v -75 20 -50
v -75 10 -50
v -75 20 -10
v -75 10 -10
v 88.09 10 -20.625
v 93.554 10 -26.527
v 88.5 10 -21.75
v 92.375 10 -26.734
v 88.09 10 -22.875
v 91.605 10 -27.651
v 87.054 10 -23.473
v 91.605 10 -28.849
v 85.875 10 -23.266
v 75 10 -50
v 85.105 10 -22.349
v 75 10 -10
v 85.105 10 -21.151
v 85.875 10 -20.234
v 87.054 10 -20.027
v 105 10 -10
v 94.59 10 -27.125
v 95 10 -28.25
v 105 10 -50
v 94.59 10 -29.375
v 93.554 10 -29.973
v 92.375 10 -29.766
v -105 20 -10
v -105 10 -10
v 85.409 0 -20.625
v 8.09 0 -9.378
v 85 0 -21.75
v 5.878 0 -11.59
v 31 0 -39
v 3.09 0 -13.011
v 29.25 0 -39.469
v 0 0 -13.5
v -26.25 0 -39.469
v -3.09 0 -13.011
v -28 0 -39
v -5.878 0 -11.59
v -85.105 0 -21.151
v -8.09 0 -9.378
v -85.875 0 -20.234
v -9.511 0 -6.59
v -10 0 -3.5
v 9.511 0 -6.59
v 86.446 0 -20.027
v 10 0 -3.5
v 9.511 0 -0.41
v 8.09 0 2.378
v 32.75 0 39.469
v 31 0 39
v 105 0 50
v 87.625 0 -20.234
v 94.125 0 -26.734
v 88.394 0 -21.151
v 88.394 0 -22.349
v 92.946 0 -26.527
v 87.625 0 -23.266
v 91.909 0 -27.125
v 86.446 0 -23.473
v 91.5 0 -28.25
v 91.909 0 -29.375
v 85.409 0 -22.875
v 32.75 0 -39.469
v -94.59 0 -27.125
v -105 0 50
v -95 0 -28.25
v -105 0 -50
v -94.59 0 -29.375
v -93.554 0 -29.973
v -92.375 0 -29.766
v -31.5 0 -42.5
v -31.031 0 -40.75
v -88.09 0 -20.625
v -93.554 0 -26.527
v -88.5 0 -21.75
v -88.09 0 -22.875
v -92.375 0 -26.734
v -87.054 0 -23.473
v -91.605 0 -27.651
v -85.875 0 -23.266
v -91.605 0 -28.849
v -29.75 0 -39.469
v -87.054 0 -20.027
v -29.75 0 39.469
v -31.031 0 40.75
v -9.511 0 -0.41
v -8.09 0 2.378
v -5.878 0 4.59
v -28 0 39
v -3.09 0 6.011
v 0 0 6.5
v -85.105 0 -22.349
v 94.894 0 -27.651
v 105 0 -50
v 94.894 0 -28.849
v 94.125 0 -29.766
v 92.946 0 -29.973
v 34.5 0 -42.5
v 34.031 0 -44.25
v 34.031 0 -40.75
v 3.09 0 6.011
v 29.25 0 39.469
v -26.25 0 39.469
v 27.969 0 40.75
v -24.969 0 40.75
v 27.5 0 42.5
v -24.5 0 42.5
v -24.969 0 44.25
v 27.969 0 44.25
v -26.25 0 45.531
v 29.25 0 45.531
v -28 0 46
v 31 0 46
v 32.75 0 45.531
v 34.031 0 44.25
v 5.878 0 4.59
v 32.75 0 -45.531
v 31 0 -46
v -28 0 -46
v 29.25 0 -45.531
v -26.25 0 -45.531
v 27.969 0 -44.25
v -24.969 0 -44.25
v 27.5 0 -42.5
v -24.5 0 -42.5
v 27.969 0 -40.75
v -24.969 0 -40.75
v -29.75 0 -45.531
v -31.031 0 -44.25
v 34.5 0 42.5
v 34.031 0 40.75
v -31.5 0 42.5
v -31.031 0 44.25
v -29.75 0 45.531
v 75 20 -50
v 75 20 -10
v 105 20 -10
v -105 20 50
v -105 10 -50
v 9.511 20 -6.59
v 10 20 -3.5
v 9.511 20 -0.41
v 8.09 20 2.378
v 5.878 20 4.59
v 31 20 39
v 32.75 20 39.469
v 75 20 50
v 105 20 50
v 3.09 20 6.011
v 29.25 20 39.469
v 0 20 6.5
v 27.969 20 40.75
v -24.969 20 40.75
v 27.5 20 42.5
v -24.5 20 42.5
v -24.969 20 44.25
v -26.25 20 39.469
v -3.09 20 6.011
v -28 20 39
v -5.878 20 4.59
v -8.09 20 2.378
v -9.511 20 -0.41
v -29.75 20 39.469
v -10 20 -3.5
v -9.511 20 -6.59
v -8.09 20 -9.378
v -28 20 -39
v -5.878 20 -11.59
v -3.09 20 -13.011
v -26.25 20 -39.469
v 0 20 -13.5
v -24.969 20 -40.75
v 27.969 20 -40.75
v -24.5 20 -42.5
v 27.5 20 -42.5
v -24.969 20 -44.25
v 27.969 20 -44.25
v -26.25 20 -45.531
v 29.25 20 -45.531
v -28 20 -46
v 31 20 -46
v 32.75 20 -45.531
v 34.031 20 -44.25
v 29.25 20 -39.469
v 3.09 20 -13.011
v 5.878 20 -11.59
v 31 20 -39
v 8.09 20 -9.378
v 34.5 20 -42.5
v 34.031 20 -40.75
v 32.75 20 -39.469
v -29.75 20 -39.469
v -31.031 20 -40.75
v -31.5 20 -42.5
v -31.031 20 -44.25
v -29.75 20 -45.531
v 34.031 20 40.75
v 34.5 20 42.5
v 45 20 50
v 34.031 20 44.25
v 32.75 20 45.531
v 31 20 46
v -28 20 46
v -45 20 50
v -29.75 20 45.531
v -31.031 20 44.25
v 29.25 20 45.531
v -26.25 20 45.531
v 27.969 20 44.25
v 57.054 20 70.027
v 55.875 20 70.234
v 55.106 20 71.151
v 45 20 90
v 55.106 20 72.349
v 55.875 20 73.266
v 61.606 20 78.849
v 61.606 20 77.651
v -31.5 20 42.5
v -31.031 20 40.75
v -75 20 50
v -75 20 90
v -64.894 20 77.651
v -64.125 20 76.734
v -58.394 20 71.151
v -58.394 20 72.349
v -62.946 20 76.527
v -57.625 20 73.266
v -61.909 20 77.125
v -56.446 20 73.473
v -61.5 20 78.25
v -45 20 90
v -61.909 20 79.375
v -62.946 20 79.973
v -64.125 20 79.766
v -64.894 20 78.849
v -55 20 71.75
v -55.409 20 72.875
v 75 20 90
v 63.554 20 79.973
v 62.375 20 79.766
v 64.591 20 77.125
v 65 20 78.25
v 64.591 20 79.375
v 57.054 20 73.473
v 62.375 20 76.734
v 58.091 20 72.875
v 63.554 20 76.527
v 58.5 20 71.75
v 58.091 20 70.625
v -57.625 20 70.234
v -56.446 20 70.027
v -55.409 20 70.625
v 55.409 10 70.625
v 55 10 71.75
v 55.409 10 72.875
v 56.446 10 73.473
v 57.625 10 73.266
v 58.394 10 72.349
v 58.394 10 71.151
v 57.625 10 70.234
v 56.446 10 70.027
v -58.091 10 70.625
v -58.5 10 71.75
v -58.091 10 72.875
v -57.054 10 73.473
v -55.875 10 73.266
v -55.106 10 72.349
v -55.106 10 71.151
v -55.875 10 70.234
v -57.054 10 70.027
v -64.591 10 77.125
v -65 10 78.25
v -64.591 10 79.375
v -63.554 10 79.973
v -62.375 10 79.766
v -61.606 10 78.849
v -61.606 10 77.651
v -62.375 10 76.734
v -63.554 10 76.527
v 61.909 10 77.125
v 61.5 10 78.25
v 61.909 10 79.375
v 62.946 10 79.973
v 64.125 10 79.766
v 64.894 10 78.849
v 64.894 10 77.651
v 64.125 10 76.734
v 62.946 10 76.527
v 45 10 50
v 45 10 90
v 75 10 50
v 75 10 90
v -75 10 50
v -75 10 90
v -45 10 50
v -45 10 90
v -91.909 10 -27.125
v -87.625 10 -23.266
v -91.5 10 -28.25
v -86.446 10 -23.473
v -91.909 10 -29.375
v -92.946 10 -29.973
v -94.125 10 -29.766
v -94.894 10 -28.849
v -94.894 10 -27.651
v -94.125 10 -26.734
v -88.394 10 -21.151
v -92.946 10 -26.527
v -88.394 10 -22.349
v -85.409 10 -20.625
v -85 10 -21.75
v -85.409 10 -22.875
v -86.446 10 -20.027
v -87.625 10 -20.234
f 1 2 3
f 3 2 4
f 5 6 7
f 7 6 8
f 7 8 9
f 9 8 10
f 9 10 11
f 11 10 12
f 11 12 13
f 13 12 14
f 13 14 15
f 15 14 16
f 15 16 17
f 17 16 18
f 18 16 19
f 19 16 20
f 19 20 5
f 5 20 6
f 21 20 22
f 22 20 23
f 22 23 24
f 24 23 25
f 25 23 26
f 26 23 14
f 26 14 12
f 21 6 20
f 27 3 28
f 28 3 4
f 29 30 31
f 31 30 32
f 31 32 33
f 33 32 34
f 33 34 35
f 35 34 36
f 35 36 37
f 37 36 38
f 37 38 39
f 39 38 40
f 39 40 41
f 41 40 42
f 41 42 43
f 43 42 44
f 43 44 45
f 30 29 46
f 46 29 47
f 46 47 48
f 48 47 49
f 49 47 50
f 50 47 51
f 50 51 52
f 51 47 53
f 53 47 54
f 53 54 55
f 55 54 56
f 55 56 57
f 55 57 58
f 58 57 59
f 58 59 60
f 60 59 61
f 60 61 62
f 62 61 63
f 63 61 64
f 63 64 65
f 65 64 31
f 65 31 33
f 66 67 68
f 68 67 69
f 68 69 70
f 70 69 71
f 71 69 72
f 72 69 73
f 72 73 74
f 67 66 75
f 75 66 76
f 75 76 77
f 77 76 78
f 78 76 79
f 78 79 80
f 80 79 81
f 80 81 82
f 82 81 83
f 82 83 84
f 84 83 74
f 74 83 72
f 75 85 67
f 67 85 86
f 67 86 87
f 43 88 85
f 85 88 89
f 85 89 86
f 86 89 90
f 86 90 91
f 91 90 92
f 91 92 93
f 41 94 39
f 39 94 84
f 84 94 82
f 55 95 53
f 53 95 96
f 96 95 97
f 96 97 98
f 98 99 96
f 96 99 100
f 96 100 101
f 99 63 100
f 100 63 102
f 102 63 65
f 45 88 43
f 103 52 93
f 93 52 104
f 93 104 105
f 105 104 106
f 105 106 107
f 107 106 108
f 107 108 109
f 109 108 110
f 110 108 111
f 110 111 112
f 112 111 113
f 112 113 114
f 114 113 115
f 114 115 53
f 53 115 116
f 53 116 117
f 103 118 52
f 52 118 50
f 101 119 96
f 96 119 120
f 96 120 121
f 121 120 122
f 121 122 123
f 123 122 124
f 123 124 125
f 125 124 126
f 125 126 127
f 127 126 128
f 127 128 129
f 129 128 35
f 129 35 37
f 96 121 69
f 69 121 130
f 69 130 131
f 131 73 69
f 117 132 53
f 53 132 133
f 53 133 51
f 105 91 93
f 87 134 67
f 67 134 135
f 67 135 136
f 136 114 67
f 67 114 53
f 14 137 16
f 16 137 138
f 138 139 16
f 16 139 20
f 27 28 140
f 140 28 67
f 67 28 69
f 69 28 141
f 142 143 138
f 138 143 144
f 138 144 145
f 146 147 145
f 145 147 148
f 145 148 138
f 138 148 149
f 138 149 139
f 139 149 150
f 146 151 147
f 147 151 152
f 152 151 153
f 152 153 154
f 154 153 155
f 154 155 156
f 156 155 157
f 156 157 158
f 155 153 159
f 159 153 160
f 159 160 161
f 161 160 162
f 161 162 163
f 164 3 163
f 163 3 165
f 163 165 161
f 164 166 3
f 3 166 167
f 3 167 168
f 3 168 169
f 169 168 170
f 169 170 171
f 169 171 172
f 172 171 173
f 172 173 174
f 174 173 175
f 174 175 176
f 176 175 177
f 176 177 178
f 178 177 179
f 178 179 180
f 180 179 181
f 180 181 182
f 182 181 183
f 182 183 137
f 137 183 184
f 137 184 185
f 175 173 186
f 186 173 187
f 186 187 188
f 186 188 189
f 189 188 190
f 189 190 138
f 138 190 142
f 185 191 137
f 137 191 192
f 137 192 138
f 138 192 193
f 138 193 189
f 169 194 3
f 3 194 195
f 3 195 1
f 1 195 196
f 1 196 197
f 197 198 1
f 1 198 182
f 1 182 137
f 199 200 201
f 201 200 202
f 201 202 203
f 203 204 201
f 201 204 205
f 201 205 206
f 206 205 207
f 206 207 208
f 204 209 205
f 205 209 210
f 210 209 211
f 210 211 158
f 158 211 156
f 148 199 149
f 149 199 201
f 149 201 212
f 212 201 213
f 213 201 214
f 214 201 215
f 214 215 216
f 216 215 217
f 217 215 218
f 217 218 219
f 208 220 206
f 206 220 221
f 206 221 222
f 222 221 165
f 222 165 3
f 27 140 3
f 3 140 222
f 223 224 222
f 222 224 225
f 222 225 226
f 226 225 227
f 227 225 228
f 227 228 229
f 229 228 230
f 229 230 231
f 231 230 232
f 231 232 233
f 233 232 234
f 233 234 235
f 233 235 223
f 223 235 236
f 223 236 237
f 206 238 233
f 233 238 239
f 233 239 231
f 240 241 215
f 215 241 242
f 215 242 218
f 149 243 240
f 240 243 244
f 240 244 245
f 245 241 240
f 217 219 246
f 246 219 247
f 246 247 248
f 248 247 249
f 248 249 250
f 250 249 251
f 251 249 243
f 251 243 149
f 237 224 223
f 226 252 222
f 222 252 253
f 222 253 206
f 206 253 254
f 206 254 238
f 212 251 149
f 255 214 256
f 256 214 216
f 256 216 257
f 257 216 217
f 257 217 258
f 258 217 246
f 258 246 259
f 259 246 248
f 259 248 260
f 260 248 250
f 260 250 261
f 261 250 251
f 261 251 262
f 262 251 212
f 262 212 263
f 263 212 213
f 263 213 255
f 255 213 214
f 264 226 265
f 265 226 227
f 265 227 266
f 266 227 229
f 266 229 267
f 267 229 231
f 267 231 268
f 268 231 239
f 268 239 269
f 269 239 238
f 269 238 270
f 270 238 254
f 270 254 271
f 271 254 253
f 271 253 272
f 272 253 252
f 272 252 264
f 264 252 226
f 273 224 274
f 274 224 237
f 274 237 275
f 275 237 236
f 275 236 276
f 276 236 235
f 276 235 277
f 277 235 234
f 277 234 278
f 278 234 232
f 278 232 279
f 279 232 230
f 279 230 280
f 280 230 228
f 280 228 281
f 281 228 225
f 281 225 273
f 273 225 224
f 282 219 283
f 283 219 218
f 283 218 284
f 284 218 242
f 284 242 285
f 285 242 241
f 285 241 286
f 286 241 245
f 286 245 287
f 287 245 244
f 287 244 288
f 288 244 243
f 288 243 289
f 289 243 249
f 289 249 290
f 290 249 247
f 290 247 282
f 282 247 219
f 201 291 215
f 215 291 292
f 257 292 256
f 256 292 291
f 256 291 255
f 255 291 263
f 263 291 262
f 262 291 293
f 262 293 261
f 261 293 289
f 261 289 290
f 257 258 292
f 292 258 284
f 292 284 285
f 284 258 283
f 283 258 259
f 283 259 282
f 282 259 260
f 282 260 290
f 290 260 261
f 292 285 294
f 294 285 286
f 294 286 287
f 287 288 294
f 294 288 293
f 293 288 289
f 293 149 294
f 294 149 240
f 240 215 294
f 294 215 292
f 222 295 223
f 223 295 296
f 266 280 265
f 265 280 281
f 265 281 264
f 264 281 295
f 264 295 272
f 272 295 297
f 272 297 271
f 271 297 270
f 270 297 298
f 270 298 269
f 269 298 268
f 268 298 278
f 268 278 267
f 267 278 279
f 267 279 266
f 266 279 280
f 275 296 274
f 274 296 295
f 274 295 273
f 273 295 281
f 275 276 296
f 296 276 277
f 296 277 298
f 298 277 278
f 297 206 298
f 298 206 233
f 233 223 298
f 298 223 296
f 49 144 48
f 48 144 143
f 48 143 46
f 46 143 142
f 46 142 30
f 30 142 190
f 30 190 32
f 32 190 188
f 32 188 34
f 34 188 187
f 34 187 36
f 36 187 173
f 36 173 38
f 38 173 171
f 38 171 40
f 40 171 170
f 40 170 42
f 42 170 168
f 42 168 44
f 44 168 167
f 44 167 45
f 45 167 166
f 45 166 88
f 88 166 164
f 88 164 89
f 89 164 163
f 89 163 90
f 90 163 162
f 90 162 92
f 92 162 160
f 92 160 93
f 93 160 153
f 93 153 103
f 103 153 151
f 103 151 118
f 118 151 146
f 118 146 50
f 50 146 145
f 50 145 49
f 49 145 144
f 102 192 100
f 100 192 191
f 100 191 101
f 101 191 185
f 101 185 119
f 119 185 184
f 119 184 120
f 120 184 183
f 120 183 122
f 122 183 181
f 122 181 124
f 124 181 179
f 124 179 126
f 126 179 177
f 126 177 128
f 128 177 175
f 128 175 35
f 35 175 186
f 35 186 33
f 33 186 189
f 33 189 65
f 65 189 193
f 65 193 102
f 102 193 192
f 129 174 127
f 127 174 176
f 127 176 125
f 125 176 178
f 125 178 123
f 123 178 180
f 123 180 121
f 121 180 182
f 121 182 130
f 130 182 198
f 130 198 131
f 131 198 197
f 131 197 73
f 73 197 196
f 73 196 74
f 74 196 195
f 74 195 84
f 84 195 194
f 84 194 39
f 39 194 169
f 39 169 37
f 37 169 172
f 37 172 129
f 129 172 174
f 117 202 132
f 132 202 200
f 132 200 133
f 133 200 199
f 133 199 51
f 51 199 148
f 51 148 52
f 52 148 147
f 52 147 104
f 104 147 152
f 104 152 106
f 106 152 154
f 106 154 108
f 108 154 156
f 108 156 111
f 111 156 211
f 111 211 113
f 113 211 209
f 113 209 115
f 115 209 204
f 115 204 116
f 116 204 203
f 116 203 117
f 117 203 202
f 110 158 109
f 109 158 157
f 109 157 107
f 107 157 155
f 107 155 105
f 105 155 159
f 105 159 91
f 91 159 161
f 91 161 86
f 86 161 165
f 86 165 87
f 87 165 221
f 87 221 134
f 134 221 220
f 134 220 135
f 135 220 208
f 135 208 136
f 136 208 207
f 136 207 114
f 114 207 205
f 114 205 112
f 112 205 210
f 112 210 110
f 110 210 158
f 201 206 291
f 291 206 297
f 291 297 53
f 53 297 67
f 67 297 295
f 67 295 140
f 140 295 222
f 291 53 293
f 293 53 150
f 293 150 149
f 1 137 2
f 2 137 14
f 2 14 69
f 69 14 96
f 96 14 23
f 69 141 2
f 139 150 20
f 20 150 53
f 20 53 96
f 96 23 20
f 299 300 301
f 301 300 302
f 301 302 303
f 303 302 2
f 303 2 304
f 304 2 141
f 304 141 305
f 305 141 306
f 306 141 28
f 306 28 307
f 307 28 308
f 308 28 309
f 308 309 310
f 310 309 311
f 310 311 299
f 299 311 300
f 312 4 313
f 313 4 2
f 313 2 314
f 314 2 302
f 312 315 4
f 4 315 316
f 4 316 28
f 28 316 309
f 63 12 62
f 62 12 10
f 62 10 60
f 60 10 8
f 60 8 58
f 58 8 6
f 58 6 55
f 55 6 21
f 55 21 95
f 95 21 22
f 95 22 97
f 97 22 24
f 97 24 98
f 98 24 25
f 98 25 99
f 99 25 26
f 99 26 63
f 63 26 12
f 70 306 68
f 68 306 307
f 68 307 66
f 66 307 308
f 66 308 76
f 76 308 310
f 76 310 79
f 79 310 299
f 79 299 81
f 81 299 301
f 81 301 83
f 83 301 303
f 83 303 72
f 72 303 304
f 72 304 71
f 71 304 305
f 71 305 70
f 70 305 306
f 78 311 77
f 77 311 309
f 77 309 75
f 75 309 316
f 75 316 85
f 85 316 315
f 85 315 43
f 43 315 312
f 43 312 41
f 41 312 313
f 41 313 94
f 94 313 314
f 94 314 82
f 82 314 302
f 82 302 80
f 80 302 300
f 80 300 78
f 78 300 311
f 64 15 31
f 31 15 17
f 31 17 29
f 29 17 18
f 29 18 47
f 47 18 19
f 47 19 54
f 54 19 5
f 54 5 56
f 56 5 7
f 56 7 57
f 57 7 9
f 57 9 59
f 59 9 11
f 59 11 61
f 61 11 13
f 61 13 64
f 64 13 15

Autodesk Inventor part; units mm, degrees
ref_plane "YZ Plane" through (0, 0, 0) normal (1, 0, 0) x (0, 1, 0)
ref_plane "XZ Plane" through (0, 0, 0) normal (0, 1, 0) x (-1, 0, 0)
ref_plane "XY Plane" through (0, 0, 0) normal (0, 0, 1) x (1, 0, 0)
sketch "Boceto1" plane through (0, 0, 0) normal (0, 1, 0) x (-1, 0, 0)
  line L0 (105, 50) -> (-105, 50)
  line L1 (-105, 50) -> (-105, -50)
  line L2 (-105, -50) -> (105, -50)
  line L3 (105, -50) -> (105, 50)
  line L4 (105, 50) -> (-105, -50) construction
  line L5 (-105, 50) -> (105, -50) construction
  point P0 (0, 0)
  dimension "d0" = 210
  dimension "d1" = 100
extrude "Extrusión1" add sketch "Boceto1" along normal blind 20
sketch "Boceto2" plane through (0, 20, 0) normal (0, 1, 0) x (1, 0, 0)
  circle A0 centre (0, 3.5) radius 10
  circle A1 centre (31, -42.5) radius 3.5
  line L0 (0, 3.5) -> (21.5607, 3.5)
  circle A2 centre (31, 42.5) radius 3.5
  circle A3 centre (-28, 42.5) radius 3.5
  circle A4 centre (-28, -42.5) radius 3.5
  line L1 (105, 50) -> (-105, 50) projected
  point P0 (0, 0)
  dimension "d4" = 7
  dimension "d5" = 7
  dimension "d6" = 7
  dimension "d7" = 39
  dimension "d8" = 46
  dimension "d9" = 59
  dimension "d10" = 46
  dimension "d11" = 39
  dimension "d12" = 59
  dimension "d13" = 7.5
extrude "Extrusión2" cut sketch "Boceto2" against normal blind 20
sketch "Boceto3" plane through (0, 20, 0) normal (0, 1, 0) x (1, 0, 0)
  line L0 (-105, -50) -> (105, -50) projected
  line L1 (-45.0001, -10) -> (-45.0001, -50)
  line L2 (-75, -10) -> (-45.0001, -10)
  line L3 (-75, -50) -> (-75, -10)
  line L4 (-65, -50) -> (-75, -50)
  line L5 (-45.0001, -50) -> (-75, -50)
  line L6 (-55, -50.0503) -> (-45.0001, -50)
  line L7 (105, -50) -> (-105, -50)
  line L8 (55, -50.0503) -> (45.0001, -50)
  line L9 (65, -50) -> (75, -50)
  line L10 (-105, -50) -> (105, -50)
  line L11 (0, -50) -> (0, -28.25)
  line L12 (45.0001, -10) -> (45.0001, -50)
  line L13 (45.0001, -50) -> (75, -50)
  line L14 (75, -50) -> (75, -10)
  line L15 (75, -10) -> (45.0001, -10)
  point P0 (0, 0)
extrude "Extrusión3" cut sketch "Boceto3" against normal blind 10
sketch "Boceto4" plane through (-75, 20, 10) normal (0, 0, 1) x (1, 0, 0)
  line L0 (0, -10) -> (0, 0) projected
  line L1 (29.9999, -10) -> (0, -10) projected
  line L2 (0, 0) -> (29.9999, 0)
  line L3 (29.9999, 0) -> (29.9999, -10)
  line L4 (29.9999, -10) -> (0, -10)
  line L5 (0, -10) -> (0, 0)
  line L6 (120.0001, -10) -> (120.0001, 0) projected
  line L7 (150, -10) -> (120.0001, -10) projected
  line L8 (120.0001, 0) -> (150, 0)
  line L9 (150, 0) -> (150, -10)
  line L10 (150, -10) -> (120.0001, -10)
  line L11 (120.0001, -10) -> (120.0001, 0)
  point P0 (75, -20)
extrude "Extrusión4" add sketch "Boceto4" along normal blind 80
sketch "Boceto5" plane through (0, 20, 0) normal (0, 1, 0) x (1, 0, 0)
  circle A0 centre (56.75, -71.75) radius 1.75
  line L0 (55, -71.75) -> (55, -49.9497)
  circle A1 centre (63.25, -78.25) radius 1.75
  line L1 (65, -78.25) -> (65, -50)
  line L2 (55, -49.9497) -> (45.0001, -50)
  line L3 (65, -50) -> (75, -50)
  line L4 (45.0001, -50) -> (75, -50)
  line L5 (75, -50) -> (75, -90)
  line L6 (75, -90) -> (45.0001, -90)
  line L7 (45.0001, -90) -> (45.0001, -50)
  line L8 (0, -50) -> (0, -71.75)
  circle A2 centre (-56.75, -71.75) radius 1.75
  line L9 (-55, -71.75) -> (-55, -49.9497)
  circle A3 centre (-63.25, -78.25) radius 1.75
  line L10 (-65, -78.25) -> (-65, -50)
  line L11 (-45.0001, -50) -> (-75, -50)
  line L12 (-75, -50) -> (-75, -90)
  line L13 (-75, -90) -> (-45.0001, -90)
  line L14 (-45.0001, -90) -> (-45.0001, -50)
  line L15 (-45.0001, -90) -> (-75, -90) projected
  line L16 (-75, -50) -> (-75, -90) projected
  line L17 (-75, -20) -> (-51.4571, -20)
  line L18 (-45.0001, 50) -> (-45.0001, 10)
  line L19 (-45.0001, 10) -> (-15.0003, 10)
  line L20 (-35.0003, 31.75) -> (-35.0003, 9.9497)
  circle A4 centre (-33.2503, 31.75) radius 1.75
  line L21 (-25.0003, 38.25) -> (-25.0003, 10)
  circle A5 centre (-26.7503, 38.25) radius 1.75
  line L22 (-15.0003, 10) -> (-15.0003, 50)
  line L23 (-15.0003, 10) -> (-15.0003, 50)
  line L24 (-45.0001, 50) -> (-15.0003, 50)
  line L25 (-15.0003, 50) -> (-45.0001, 50)
  line L26 (-45.0001, 30) -> (-65.9082, 30)
  point P0 (0, 0)
  point P1 (105, 90)
  point P2 (105, 90)
  point P3 (63.25, -61.75)
  point P4 (56.75, -68.25)
  point P5 (-56.75, -68.25)
  point P6 (-63.25, -61.75)
  point P7 (105, 50)
  point P8 (-105, 50)
  point P9 (-33.2503, 28.25)
  point P10 (-26.7503, 21.75)
  dimension "d41" = 3.5
  dimension "d42" = 3.5
  dimension "d33" = 10
  dimension "d34" = 10
  dimension "d35" = 40
  dimension "d36" = 0
  dimension "d37" = 6.5
  dimension "d38" = 6.5
  dimension "d43" = 11.7499
  dimension "d44" = 11.75
hole "Agujero1" at (-56.75, 20, 71.75) at (-63.25, 20, 78.25) at (56.75, 20, 71.75) at (63.25, 20, 78.25) direction (0, -1, 0) diameter 3.5 end through all
sketch "Boceto6" plane through (105, 0, -50) normal (0, 0, -1) x (-1, 0, 0)
  line L0 (30, 20) -> (30, 10)
  line L1 (0, 0) -> (0, 20) projected
  line L2 (30, 20) -> (0, 20) projected
  line L3 (0, 20) -> (30, 20)
  line L4 (30, 20) -> (30, 10)
  line L5 (30, 10) -> (0, 10)
  line L6 (0, 10) -> (0, 20)
  line L7 (150.0001, 20) -> (59.9999, 20) projected
  line L8 (105, 20) -> (105, 8.0079)
  line L9 (180, 20) -> (180, 10)
  line L10 (210, 0) -> (210, 20)
  line L11 (180, 20) -> (210, 20)
  line L12 (210, 20) -> (180, 20)
  line L13 (180, 20) -> (180, 10)
  line L14 (180, 10) -> (210, 10)
  line L15 (210, 10) -> (210, 20)
  point P0 (105, 0)
  dimension "d70" = 30
  dimension "d71" = 30
extrude "Extrusión6" cut sketch "Boceto6" against normal blind 40
sketch "Boceto8" plane through (-105, 10, -50) normal (0, 1, 0) x (1, 0, 0)
  line L0 (0.0001, 0) -> (0.0001, -40)
  line L1 (30, -40) -> (30, 0)
  line L2 (-55.1959, 0.0503) -> (30, 0)
  line L3 (30, 0) -> (0.0001, 0)
  line L4 (0.0001, -40) -> (30, -40)
  line L5 (-64.3507, 0) -> (-74.3507, 0)
  circle A0 centre (18.2501, -28.25) radius 1.75
  circle A1 centre (11.7501, -21.75) radius 1.75
  line L6 (30, 0) -> (75.0001, 0)
  line L7 (180, 0) -> (30, 0) projected
  line L8 (30, 0) -> (30, -40) projected
  line L9 (210, 0) -> (0, 0) projected
  line L10 (105, 0) -> (105, -23.5)
  circle A2 centre (191.7499, -28.25) radius 1.75
  circle A3 centre (198.2499, -21.75) radius 1.75
  point P0 (105, -50)
  point P1 (18.2501, -21.75)
  point P2 (-63.4459, -118.25)
  point P3 (52.5001, 0)
  point P4 (191.7499, -21.75)
  dimension "d73" = 11.7499
  dimension "d74" = 40
  dimension "d75" = 29.9999
  dimension "d76" = 21.75
  dimension "d77" = 11.75
  dimension "d78" = 28.3003
  dimension "d79" = 11.7499
  dimension "d80" = 0
  dimension "d81" = 0
hole "Agujero3" at (-93.2499, 10, -28.25) at (-86.7499, 10, -21.75) at (86.7499, 10, -21.75) at (93.2499, 10, -28.25) direction (0, -1, 0) diameter 3.5 end through all
properties part number "base_mid"
